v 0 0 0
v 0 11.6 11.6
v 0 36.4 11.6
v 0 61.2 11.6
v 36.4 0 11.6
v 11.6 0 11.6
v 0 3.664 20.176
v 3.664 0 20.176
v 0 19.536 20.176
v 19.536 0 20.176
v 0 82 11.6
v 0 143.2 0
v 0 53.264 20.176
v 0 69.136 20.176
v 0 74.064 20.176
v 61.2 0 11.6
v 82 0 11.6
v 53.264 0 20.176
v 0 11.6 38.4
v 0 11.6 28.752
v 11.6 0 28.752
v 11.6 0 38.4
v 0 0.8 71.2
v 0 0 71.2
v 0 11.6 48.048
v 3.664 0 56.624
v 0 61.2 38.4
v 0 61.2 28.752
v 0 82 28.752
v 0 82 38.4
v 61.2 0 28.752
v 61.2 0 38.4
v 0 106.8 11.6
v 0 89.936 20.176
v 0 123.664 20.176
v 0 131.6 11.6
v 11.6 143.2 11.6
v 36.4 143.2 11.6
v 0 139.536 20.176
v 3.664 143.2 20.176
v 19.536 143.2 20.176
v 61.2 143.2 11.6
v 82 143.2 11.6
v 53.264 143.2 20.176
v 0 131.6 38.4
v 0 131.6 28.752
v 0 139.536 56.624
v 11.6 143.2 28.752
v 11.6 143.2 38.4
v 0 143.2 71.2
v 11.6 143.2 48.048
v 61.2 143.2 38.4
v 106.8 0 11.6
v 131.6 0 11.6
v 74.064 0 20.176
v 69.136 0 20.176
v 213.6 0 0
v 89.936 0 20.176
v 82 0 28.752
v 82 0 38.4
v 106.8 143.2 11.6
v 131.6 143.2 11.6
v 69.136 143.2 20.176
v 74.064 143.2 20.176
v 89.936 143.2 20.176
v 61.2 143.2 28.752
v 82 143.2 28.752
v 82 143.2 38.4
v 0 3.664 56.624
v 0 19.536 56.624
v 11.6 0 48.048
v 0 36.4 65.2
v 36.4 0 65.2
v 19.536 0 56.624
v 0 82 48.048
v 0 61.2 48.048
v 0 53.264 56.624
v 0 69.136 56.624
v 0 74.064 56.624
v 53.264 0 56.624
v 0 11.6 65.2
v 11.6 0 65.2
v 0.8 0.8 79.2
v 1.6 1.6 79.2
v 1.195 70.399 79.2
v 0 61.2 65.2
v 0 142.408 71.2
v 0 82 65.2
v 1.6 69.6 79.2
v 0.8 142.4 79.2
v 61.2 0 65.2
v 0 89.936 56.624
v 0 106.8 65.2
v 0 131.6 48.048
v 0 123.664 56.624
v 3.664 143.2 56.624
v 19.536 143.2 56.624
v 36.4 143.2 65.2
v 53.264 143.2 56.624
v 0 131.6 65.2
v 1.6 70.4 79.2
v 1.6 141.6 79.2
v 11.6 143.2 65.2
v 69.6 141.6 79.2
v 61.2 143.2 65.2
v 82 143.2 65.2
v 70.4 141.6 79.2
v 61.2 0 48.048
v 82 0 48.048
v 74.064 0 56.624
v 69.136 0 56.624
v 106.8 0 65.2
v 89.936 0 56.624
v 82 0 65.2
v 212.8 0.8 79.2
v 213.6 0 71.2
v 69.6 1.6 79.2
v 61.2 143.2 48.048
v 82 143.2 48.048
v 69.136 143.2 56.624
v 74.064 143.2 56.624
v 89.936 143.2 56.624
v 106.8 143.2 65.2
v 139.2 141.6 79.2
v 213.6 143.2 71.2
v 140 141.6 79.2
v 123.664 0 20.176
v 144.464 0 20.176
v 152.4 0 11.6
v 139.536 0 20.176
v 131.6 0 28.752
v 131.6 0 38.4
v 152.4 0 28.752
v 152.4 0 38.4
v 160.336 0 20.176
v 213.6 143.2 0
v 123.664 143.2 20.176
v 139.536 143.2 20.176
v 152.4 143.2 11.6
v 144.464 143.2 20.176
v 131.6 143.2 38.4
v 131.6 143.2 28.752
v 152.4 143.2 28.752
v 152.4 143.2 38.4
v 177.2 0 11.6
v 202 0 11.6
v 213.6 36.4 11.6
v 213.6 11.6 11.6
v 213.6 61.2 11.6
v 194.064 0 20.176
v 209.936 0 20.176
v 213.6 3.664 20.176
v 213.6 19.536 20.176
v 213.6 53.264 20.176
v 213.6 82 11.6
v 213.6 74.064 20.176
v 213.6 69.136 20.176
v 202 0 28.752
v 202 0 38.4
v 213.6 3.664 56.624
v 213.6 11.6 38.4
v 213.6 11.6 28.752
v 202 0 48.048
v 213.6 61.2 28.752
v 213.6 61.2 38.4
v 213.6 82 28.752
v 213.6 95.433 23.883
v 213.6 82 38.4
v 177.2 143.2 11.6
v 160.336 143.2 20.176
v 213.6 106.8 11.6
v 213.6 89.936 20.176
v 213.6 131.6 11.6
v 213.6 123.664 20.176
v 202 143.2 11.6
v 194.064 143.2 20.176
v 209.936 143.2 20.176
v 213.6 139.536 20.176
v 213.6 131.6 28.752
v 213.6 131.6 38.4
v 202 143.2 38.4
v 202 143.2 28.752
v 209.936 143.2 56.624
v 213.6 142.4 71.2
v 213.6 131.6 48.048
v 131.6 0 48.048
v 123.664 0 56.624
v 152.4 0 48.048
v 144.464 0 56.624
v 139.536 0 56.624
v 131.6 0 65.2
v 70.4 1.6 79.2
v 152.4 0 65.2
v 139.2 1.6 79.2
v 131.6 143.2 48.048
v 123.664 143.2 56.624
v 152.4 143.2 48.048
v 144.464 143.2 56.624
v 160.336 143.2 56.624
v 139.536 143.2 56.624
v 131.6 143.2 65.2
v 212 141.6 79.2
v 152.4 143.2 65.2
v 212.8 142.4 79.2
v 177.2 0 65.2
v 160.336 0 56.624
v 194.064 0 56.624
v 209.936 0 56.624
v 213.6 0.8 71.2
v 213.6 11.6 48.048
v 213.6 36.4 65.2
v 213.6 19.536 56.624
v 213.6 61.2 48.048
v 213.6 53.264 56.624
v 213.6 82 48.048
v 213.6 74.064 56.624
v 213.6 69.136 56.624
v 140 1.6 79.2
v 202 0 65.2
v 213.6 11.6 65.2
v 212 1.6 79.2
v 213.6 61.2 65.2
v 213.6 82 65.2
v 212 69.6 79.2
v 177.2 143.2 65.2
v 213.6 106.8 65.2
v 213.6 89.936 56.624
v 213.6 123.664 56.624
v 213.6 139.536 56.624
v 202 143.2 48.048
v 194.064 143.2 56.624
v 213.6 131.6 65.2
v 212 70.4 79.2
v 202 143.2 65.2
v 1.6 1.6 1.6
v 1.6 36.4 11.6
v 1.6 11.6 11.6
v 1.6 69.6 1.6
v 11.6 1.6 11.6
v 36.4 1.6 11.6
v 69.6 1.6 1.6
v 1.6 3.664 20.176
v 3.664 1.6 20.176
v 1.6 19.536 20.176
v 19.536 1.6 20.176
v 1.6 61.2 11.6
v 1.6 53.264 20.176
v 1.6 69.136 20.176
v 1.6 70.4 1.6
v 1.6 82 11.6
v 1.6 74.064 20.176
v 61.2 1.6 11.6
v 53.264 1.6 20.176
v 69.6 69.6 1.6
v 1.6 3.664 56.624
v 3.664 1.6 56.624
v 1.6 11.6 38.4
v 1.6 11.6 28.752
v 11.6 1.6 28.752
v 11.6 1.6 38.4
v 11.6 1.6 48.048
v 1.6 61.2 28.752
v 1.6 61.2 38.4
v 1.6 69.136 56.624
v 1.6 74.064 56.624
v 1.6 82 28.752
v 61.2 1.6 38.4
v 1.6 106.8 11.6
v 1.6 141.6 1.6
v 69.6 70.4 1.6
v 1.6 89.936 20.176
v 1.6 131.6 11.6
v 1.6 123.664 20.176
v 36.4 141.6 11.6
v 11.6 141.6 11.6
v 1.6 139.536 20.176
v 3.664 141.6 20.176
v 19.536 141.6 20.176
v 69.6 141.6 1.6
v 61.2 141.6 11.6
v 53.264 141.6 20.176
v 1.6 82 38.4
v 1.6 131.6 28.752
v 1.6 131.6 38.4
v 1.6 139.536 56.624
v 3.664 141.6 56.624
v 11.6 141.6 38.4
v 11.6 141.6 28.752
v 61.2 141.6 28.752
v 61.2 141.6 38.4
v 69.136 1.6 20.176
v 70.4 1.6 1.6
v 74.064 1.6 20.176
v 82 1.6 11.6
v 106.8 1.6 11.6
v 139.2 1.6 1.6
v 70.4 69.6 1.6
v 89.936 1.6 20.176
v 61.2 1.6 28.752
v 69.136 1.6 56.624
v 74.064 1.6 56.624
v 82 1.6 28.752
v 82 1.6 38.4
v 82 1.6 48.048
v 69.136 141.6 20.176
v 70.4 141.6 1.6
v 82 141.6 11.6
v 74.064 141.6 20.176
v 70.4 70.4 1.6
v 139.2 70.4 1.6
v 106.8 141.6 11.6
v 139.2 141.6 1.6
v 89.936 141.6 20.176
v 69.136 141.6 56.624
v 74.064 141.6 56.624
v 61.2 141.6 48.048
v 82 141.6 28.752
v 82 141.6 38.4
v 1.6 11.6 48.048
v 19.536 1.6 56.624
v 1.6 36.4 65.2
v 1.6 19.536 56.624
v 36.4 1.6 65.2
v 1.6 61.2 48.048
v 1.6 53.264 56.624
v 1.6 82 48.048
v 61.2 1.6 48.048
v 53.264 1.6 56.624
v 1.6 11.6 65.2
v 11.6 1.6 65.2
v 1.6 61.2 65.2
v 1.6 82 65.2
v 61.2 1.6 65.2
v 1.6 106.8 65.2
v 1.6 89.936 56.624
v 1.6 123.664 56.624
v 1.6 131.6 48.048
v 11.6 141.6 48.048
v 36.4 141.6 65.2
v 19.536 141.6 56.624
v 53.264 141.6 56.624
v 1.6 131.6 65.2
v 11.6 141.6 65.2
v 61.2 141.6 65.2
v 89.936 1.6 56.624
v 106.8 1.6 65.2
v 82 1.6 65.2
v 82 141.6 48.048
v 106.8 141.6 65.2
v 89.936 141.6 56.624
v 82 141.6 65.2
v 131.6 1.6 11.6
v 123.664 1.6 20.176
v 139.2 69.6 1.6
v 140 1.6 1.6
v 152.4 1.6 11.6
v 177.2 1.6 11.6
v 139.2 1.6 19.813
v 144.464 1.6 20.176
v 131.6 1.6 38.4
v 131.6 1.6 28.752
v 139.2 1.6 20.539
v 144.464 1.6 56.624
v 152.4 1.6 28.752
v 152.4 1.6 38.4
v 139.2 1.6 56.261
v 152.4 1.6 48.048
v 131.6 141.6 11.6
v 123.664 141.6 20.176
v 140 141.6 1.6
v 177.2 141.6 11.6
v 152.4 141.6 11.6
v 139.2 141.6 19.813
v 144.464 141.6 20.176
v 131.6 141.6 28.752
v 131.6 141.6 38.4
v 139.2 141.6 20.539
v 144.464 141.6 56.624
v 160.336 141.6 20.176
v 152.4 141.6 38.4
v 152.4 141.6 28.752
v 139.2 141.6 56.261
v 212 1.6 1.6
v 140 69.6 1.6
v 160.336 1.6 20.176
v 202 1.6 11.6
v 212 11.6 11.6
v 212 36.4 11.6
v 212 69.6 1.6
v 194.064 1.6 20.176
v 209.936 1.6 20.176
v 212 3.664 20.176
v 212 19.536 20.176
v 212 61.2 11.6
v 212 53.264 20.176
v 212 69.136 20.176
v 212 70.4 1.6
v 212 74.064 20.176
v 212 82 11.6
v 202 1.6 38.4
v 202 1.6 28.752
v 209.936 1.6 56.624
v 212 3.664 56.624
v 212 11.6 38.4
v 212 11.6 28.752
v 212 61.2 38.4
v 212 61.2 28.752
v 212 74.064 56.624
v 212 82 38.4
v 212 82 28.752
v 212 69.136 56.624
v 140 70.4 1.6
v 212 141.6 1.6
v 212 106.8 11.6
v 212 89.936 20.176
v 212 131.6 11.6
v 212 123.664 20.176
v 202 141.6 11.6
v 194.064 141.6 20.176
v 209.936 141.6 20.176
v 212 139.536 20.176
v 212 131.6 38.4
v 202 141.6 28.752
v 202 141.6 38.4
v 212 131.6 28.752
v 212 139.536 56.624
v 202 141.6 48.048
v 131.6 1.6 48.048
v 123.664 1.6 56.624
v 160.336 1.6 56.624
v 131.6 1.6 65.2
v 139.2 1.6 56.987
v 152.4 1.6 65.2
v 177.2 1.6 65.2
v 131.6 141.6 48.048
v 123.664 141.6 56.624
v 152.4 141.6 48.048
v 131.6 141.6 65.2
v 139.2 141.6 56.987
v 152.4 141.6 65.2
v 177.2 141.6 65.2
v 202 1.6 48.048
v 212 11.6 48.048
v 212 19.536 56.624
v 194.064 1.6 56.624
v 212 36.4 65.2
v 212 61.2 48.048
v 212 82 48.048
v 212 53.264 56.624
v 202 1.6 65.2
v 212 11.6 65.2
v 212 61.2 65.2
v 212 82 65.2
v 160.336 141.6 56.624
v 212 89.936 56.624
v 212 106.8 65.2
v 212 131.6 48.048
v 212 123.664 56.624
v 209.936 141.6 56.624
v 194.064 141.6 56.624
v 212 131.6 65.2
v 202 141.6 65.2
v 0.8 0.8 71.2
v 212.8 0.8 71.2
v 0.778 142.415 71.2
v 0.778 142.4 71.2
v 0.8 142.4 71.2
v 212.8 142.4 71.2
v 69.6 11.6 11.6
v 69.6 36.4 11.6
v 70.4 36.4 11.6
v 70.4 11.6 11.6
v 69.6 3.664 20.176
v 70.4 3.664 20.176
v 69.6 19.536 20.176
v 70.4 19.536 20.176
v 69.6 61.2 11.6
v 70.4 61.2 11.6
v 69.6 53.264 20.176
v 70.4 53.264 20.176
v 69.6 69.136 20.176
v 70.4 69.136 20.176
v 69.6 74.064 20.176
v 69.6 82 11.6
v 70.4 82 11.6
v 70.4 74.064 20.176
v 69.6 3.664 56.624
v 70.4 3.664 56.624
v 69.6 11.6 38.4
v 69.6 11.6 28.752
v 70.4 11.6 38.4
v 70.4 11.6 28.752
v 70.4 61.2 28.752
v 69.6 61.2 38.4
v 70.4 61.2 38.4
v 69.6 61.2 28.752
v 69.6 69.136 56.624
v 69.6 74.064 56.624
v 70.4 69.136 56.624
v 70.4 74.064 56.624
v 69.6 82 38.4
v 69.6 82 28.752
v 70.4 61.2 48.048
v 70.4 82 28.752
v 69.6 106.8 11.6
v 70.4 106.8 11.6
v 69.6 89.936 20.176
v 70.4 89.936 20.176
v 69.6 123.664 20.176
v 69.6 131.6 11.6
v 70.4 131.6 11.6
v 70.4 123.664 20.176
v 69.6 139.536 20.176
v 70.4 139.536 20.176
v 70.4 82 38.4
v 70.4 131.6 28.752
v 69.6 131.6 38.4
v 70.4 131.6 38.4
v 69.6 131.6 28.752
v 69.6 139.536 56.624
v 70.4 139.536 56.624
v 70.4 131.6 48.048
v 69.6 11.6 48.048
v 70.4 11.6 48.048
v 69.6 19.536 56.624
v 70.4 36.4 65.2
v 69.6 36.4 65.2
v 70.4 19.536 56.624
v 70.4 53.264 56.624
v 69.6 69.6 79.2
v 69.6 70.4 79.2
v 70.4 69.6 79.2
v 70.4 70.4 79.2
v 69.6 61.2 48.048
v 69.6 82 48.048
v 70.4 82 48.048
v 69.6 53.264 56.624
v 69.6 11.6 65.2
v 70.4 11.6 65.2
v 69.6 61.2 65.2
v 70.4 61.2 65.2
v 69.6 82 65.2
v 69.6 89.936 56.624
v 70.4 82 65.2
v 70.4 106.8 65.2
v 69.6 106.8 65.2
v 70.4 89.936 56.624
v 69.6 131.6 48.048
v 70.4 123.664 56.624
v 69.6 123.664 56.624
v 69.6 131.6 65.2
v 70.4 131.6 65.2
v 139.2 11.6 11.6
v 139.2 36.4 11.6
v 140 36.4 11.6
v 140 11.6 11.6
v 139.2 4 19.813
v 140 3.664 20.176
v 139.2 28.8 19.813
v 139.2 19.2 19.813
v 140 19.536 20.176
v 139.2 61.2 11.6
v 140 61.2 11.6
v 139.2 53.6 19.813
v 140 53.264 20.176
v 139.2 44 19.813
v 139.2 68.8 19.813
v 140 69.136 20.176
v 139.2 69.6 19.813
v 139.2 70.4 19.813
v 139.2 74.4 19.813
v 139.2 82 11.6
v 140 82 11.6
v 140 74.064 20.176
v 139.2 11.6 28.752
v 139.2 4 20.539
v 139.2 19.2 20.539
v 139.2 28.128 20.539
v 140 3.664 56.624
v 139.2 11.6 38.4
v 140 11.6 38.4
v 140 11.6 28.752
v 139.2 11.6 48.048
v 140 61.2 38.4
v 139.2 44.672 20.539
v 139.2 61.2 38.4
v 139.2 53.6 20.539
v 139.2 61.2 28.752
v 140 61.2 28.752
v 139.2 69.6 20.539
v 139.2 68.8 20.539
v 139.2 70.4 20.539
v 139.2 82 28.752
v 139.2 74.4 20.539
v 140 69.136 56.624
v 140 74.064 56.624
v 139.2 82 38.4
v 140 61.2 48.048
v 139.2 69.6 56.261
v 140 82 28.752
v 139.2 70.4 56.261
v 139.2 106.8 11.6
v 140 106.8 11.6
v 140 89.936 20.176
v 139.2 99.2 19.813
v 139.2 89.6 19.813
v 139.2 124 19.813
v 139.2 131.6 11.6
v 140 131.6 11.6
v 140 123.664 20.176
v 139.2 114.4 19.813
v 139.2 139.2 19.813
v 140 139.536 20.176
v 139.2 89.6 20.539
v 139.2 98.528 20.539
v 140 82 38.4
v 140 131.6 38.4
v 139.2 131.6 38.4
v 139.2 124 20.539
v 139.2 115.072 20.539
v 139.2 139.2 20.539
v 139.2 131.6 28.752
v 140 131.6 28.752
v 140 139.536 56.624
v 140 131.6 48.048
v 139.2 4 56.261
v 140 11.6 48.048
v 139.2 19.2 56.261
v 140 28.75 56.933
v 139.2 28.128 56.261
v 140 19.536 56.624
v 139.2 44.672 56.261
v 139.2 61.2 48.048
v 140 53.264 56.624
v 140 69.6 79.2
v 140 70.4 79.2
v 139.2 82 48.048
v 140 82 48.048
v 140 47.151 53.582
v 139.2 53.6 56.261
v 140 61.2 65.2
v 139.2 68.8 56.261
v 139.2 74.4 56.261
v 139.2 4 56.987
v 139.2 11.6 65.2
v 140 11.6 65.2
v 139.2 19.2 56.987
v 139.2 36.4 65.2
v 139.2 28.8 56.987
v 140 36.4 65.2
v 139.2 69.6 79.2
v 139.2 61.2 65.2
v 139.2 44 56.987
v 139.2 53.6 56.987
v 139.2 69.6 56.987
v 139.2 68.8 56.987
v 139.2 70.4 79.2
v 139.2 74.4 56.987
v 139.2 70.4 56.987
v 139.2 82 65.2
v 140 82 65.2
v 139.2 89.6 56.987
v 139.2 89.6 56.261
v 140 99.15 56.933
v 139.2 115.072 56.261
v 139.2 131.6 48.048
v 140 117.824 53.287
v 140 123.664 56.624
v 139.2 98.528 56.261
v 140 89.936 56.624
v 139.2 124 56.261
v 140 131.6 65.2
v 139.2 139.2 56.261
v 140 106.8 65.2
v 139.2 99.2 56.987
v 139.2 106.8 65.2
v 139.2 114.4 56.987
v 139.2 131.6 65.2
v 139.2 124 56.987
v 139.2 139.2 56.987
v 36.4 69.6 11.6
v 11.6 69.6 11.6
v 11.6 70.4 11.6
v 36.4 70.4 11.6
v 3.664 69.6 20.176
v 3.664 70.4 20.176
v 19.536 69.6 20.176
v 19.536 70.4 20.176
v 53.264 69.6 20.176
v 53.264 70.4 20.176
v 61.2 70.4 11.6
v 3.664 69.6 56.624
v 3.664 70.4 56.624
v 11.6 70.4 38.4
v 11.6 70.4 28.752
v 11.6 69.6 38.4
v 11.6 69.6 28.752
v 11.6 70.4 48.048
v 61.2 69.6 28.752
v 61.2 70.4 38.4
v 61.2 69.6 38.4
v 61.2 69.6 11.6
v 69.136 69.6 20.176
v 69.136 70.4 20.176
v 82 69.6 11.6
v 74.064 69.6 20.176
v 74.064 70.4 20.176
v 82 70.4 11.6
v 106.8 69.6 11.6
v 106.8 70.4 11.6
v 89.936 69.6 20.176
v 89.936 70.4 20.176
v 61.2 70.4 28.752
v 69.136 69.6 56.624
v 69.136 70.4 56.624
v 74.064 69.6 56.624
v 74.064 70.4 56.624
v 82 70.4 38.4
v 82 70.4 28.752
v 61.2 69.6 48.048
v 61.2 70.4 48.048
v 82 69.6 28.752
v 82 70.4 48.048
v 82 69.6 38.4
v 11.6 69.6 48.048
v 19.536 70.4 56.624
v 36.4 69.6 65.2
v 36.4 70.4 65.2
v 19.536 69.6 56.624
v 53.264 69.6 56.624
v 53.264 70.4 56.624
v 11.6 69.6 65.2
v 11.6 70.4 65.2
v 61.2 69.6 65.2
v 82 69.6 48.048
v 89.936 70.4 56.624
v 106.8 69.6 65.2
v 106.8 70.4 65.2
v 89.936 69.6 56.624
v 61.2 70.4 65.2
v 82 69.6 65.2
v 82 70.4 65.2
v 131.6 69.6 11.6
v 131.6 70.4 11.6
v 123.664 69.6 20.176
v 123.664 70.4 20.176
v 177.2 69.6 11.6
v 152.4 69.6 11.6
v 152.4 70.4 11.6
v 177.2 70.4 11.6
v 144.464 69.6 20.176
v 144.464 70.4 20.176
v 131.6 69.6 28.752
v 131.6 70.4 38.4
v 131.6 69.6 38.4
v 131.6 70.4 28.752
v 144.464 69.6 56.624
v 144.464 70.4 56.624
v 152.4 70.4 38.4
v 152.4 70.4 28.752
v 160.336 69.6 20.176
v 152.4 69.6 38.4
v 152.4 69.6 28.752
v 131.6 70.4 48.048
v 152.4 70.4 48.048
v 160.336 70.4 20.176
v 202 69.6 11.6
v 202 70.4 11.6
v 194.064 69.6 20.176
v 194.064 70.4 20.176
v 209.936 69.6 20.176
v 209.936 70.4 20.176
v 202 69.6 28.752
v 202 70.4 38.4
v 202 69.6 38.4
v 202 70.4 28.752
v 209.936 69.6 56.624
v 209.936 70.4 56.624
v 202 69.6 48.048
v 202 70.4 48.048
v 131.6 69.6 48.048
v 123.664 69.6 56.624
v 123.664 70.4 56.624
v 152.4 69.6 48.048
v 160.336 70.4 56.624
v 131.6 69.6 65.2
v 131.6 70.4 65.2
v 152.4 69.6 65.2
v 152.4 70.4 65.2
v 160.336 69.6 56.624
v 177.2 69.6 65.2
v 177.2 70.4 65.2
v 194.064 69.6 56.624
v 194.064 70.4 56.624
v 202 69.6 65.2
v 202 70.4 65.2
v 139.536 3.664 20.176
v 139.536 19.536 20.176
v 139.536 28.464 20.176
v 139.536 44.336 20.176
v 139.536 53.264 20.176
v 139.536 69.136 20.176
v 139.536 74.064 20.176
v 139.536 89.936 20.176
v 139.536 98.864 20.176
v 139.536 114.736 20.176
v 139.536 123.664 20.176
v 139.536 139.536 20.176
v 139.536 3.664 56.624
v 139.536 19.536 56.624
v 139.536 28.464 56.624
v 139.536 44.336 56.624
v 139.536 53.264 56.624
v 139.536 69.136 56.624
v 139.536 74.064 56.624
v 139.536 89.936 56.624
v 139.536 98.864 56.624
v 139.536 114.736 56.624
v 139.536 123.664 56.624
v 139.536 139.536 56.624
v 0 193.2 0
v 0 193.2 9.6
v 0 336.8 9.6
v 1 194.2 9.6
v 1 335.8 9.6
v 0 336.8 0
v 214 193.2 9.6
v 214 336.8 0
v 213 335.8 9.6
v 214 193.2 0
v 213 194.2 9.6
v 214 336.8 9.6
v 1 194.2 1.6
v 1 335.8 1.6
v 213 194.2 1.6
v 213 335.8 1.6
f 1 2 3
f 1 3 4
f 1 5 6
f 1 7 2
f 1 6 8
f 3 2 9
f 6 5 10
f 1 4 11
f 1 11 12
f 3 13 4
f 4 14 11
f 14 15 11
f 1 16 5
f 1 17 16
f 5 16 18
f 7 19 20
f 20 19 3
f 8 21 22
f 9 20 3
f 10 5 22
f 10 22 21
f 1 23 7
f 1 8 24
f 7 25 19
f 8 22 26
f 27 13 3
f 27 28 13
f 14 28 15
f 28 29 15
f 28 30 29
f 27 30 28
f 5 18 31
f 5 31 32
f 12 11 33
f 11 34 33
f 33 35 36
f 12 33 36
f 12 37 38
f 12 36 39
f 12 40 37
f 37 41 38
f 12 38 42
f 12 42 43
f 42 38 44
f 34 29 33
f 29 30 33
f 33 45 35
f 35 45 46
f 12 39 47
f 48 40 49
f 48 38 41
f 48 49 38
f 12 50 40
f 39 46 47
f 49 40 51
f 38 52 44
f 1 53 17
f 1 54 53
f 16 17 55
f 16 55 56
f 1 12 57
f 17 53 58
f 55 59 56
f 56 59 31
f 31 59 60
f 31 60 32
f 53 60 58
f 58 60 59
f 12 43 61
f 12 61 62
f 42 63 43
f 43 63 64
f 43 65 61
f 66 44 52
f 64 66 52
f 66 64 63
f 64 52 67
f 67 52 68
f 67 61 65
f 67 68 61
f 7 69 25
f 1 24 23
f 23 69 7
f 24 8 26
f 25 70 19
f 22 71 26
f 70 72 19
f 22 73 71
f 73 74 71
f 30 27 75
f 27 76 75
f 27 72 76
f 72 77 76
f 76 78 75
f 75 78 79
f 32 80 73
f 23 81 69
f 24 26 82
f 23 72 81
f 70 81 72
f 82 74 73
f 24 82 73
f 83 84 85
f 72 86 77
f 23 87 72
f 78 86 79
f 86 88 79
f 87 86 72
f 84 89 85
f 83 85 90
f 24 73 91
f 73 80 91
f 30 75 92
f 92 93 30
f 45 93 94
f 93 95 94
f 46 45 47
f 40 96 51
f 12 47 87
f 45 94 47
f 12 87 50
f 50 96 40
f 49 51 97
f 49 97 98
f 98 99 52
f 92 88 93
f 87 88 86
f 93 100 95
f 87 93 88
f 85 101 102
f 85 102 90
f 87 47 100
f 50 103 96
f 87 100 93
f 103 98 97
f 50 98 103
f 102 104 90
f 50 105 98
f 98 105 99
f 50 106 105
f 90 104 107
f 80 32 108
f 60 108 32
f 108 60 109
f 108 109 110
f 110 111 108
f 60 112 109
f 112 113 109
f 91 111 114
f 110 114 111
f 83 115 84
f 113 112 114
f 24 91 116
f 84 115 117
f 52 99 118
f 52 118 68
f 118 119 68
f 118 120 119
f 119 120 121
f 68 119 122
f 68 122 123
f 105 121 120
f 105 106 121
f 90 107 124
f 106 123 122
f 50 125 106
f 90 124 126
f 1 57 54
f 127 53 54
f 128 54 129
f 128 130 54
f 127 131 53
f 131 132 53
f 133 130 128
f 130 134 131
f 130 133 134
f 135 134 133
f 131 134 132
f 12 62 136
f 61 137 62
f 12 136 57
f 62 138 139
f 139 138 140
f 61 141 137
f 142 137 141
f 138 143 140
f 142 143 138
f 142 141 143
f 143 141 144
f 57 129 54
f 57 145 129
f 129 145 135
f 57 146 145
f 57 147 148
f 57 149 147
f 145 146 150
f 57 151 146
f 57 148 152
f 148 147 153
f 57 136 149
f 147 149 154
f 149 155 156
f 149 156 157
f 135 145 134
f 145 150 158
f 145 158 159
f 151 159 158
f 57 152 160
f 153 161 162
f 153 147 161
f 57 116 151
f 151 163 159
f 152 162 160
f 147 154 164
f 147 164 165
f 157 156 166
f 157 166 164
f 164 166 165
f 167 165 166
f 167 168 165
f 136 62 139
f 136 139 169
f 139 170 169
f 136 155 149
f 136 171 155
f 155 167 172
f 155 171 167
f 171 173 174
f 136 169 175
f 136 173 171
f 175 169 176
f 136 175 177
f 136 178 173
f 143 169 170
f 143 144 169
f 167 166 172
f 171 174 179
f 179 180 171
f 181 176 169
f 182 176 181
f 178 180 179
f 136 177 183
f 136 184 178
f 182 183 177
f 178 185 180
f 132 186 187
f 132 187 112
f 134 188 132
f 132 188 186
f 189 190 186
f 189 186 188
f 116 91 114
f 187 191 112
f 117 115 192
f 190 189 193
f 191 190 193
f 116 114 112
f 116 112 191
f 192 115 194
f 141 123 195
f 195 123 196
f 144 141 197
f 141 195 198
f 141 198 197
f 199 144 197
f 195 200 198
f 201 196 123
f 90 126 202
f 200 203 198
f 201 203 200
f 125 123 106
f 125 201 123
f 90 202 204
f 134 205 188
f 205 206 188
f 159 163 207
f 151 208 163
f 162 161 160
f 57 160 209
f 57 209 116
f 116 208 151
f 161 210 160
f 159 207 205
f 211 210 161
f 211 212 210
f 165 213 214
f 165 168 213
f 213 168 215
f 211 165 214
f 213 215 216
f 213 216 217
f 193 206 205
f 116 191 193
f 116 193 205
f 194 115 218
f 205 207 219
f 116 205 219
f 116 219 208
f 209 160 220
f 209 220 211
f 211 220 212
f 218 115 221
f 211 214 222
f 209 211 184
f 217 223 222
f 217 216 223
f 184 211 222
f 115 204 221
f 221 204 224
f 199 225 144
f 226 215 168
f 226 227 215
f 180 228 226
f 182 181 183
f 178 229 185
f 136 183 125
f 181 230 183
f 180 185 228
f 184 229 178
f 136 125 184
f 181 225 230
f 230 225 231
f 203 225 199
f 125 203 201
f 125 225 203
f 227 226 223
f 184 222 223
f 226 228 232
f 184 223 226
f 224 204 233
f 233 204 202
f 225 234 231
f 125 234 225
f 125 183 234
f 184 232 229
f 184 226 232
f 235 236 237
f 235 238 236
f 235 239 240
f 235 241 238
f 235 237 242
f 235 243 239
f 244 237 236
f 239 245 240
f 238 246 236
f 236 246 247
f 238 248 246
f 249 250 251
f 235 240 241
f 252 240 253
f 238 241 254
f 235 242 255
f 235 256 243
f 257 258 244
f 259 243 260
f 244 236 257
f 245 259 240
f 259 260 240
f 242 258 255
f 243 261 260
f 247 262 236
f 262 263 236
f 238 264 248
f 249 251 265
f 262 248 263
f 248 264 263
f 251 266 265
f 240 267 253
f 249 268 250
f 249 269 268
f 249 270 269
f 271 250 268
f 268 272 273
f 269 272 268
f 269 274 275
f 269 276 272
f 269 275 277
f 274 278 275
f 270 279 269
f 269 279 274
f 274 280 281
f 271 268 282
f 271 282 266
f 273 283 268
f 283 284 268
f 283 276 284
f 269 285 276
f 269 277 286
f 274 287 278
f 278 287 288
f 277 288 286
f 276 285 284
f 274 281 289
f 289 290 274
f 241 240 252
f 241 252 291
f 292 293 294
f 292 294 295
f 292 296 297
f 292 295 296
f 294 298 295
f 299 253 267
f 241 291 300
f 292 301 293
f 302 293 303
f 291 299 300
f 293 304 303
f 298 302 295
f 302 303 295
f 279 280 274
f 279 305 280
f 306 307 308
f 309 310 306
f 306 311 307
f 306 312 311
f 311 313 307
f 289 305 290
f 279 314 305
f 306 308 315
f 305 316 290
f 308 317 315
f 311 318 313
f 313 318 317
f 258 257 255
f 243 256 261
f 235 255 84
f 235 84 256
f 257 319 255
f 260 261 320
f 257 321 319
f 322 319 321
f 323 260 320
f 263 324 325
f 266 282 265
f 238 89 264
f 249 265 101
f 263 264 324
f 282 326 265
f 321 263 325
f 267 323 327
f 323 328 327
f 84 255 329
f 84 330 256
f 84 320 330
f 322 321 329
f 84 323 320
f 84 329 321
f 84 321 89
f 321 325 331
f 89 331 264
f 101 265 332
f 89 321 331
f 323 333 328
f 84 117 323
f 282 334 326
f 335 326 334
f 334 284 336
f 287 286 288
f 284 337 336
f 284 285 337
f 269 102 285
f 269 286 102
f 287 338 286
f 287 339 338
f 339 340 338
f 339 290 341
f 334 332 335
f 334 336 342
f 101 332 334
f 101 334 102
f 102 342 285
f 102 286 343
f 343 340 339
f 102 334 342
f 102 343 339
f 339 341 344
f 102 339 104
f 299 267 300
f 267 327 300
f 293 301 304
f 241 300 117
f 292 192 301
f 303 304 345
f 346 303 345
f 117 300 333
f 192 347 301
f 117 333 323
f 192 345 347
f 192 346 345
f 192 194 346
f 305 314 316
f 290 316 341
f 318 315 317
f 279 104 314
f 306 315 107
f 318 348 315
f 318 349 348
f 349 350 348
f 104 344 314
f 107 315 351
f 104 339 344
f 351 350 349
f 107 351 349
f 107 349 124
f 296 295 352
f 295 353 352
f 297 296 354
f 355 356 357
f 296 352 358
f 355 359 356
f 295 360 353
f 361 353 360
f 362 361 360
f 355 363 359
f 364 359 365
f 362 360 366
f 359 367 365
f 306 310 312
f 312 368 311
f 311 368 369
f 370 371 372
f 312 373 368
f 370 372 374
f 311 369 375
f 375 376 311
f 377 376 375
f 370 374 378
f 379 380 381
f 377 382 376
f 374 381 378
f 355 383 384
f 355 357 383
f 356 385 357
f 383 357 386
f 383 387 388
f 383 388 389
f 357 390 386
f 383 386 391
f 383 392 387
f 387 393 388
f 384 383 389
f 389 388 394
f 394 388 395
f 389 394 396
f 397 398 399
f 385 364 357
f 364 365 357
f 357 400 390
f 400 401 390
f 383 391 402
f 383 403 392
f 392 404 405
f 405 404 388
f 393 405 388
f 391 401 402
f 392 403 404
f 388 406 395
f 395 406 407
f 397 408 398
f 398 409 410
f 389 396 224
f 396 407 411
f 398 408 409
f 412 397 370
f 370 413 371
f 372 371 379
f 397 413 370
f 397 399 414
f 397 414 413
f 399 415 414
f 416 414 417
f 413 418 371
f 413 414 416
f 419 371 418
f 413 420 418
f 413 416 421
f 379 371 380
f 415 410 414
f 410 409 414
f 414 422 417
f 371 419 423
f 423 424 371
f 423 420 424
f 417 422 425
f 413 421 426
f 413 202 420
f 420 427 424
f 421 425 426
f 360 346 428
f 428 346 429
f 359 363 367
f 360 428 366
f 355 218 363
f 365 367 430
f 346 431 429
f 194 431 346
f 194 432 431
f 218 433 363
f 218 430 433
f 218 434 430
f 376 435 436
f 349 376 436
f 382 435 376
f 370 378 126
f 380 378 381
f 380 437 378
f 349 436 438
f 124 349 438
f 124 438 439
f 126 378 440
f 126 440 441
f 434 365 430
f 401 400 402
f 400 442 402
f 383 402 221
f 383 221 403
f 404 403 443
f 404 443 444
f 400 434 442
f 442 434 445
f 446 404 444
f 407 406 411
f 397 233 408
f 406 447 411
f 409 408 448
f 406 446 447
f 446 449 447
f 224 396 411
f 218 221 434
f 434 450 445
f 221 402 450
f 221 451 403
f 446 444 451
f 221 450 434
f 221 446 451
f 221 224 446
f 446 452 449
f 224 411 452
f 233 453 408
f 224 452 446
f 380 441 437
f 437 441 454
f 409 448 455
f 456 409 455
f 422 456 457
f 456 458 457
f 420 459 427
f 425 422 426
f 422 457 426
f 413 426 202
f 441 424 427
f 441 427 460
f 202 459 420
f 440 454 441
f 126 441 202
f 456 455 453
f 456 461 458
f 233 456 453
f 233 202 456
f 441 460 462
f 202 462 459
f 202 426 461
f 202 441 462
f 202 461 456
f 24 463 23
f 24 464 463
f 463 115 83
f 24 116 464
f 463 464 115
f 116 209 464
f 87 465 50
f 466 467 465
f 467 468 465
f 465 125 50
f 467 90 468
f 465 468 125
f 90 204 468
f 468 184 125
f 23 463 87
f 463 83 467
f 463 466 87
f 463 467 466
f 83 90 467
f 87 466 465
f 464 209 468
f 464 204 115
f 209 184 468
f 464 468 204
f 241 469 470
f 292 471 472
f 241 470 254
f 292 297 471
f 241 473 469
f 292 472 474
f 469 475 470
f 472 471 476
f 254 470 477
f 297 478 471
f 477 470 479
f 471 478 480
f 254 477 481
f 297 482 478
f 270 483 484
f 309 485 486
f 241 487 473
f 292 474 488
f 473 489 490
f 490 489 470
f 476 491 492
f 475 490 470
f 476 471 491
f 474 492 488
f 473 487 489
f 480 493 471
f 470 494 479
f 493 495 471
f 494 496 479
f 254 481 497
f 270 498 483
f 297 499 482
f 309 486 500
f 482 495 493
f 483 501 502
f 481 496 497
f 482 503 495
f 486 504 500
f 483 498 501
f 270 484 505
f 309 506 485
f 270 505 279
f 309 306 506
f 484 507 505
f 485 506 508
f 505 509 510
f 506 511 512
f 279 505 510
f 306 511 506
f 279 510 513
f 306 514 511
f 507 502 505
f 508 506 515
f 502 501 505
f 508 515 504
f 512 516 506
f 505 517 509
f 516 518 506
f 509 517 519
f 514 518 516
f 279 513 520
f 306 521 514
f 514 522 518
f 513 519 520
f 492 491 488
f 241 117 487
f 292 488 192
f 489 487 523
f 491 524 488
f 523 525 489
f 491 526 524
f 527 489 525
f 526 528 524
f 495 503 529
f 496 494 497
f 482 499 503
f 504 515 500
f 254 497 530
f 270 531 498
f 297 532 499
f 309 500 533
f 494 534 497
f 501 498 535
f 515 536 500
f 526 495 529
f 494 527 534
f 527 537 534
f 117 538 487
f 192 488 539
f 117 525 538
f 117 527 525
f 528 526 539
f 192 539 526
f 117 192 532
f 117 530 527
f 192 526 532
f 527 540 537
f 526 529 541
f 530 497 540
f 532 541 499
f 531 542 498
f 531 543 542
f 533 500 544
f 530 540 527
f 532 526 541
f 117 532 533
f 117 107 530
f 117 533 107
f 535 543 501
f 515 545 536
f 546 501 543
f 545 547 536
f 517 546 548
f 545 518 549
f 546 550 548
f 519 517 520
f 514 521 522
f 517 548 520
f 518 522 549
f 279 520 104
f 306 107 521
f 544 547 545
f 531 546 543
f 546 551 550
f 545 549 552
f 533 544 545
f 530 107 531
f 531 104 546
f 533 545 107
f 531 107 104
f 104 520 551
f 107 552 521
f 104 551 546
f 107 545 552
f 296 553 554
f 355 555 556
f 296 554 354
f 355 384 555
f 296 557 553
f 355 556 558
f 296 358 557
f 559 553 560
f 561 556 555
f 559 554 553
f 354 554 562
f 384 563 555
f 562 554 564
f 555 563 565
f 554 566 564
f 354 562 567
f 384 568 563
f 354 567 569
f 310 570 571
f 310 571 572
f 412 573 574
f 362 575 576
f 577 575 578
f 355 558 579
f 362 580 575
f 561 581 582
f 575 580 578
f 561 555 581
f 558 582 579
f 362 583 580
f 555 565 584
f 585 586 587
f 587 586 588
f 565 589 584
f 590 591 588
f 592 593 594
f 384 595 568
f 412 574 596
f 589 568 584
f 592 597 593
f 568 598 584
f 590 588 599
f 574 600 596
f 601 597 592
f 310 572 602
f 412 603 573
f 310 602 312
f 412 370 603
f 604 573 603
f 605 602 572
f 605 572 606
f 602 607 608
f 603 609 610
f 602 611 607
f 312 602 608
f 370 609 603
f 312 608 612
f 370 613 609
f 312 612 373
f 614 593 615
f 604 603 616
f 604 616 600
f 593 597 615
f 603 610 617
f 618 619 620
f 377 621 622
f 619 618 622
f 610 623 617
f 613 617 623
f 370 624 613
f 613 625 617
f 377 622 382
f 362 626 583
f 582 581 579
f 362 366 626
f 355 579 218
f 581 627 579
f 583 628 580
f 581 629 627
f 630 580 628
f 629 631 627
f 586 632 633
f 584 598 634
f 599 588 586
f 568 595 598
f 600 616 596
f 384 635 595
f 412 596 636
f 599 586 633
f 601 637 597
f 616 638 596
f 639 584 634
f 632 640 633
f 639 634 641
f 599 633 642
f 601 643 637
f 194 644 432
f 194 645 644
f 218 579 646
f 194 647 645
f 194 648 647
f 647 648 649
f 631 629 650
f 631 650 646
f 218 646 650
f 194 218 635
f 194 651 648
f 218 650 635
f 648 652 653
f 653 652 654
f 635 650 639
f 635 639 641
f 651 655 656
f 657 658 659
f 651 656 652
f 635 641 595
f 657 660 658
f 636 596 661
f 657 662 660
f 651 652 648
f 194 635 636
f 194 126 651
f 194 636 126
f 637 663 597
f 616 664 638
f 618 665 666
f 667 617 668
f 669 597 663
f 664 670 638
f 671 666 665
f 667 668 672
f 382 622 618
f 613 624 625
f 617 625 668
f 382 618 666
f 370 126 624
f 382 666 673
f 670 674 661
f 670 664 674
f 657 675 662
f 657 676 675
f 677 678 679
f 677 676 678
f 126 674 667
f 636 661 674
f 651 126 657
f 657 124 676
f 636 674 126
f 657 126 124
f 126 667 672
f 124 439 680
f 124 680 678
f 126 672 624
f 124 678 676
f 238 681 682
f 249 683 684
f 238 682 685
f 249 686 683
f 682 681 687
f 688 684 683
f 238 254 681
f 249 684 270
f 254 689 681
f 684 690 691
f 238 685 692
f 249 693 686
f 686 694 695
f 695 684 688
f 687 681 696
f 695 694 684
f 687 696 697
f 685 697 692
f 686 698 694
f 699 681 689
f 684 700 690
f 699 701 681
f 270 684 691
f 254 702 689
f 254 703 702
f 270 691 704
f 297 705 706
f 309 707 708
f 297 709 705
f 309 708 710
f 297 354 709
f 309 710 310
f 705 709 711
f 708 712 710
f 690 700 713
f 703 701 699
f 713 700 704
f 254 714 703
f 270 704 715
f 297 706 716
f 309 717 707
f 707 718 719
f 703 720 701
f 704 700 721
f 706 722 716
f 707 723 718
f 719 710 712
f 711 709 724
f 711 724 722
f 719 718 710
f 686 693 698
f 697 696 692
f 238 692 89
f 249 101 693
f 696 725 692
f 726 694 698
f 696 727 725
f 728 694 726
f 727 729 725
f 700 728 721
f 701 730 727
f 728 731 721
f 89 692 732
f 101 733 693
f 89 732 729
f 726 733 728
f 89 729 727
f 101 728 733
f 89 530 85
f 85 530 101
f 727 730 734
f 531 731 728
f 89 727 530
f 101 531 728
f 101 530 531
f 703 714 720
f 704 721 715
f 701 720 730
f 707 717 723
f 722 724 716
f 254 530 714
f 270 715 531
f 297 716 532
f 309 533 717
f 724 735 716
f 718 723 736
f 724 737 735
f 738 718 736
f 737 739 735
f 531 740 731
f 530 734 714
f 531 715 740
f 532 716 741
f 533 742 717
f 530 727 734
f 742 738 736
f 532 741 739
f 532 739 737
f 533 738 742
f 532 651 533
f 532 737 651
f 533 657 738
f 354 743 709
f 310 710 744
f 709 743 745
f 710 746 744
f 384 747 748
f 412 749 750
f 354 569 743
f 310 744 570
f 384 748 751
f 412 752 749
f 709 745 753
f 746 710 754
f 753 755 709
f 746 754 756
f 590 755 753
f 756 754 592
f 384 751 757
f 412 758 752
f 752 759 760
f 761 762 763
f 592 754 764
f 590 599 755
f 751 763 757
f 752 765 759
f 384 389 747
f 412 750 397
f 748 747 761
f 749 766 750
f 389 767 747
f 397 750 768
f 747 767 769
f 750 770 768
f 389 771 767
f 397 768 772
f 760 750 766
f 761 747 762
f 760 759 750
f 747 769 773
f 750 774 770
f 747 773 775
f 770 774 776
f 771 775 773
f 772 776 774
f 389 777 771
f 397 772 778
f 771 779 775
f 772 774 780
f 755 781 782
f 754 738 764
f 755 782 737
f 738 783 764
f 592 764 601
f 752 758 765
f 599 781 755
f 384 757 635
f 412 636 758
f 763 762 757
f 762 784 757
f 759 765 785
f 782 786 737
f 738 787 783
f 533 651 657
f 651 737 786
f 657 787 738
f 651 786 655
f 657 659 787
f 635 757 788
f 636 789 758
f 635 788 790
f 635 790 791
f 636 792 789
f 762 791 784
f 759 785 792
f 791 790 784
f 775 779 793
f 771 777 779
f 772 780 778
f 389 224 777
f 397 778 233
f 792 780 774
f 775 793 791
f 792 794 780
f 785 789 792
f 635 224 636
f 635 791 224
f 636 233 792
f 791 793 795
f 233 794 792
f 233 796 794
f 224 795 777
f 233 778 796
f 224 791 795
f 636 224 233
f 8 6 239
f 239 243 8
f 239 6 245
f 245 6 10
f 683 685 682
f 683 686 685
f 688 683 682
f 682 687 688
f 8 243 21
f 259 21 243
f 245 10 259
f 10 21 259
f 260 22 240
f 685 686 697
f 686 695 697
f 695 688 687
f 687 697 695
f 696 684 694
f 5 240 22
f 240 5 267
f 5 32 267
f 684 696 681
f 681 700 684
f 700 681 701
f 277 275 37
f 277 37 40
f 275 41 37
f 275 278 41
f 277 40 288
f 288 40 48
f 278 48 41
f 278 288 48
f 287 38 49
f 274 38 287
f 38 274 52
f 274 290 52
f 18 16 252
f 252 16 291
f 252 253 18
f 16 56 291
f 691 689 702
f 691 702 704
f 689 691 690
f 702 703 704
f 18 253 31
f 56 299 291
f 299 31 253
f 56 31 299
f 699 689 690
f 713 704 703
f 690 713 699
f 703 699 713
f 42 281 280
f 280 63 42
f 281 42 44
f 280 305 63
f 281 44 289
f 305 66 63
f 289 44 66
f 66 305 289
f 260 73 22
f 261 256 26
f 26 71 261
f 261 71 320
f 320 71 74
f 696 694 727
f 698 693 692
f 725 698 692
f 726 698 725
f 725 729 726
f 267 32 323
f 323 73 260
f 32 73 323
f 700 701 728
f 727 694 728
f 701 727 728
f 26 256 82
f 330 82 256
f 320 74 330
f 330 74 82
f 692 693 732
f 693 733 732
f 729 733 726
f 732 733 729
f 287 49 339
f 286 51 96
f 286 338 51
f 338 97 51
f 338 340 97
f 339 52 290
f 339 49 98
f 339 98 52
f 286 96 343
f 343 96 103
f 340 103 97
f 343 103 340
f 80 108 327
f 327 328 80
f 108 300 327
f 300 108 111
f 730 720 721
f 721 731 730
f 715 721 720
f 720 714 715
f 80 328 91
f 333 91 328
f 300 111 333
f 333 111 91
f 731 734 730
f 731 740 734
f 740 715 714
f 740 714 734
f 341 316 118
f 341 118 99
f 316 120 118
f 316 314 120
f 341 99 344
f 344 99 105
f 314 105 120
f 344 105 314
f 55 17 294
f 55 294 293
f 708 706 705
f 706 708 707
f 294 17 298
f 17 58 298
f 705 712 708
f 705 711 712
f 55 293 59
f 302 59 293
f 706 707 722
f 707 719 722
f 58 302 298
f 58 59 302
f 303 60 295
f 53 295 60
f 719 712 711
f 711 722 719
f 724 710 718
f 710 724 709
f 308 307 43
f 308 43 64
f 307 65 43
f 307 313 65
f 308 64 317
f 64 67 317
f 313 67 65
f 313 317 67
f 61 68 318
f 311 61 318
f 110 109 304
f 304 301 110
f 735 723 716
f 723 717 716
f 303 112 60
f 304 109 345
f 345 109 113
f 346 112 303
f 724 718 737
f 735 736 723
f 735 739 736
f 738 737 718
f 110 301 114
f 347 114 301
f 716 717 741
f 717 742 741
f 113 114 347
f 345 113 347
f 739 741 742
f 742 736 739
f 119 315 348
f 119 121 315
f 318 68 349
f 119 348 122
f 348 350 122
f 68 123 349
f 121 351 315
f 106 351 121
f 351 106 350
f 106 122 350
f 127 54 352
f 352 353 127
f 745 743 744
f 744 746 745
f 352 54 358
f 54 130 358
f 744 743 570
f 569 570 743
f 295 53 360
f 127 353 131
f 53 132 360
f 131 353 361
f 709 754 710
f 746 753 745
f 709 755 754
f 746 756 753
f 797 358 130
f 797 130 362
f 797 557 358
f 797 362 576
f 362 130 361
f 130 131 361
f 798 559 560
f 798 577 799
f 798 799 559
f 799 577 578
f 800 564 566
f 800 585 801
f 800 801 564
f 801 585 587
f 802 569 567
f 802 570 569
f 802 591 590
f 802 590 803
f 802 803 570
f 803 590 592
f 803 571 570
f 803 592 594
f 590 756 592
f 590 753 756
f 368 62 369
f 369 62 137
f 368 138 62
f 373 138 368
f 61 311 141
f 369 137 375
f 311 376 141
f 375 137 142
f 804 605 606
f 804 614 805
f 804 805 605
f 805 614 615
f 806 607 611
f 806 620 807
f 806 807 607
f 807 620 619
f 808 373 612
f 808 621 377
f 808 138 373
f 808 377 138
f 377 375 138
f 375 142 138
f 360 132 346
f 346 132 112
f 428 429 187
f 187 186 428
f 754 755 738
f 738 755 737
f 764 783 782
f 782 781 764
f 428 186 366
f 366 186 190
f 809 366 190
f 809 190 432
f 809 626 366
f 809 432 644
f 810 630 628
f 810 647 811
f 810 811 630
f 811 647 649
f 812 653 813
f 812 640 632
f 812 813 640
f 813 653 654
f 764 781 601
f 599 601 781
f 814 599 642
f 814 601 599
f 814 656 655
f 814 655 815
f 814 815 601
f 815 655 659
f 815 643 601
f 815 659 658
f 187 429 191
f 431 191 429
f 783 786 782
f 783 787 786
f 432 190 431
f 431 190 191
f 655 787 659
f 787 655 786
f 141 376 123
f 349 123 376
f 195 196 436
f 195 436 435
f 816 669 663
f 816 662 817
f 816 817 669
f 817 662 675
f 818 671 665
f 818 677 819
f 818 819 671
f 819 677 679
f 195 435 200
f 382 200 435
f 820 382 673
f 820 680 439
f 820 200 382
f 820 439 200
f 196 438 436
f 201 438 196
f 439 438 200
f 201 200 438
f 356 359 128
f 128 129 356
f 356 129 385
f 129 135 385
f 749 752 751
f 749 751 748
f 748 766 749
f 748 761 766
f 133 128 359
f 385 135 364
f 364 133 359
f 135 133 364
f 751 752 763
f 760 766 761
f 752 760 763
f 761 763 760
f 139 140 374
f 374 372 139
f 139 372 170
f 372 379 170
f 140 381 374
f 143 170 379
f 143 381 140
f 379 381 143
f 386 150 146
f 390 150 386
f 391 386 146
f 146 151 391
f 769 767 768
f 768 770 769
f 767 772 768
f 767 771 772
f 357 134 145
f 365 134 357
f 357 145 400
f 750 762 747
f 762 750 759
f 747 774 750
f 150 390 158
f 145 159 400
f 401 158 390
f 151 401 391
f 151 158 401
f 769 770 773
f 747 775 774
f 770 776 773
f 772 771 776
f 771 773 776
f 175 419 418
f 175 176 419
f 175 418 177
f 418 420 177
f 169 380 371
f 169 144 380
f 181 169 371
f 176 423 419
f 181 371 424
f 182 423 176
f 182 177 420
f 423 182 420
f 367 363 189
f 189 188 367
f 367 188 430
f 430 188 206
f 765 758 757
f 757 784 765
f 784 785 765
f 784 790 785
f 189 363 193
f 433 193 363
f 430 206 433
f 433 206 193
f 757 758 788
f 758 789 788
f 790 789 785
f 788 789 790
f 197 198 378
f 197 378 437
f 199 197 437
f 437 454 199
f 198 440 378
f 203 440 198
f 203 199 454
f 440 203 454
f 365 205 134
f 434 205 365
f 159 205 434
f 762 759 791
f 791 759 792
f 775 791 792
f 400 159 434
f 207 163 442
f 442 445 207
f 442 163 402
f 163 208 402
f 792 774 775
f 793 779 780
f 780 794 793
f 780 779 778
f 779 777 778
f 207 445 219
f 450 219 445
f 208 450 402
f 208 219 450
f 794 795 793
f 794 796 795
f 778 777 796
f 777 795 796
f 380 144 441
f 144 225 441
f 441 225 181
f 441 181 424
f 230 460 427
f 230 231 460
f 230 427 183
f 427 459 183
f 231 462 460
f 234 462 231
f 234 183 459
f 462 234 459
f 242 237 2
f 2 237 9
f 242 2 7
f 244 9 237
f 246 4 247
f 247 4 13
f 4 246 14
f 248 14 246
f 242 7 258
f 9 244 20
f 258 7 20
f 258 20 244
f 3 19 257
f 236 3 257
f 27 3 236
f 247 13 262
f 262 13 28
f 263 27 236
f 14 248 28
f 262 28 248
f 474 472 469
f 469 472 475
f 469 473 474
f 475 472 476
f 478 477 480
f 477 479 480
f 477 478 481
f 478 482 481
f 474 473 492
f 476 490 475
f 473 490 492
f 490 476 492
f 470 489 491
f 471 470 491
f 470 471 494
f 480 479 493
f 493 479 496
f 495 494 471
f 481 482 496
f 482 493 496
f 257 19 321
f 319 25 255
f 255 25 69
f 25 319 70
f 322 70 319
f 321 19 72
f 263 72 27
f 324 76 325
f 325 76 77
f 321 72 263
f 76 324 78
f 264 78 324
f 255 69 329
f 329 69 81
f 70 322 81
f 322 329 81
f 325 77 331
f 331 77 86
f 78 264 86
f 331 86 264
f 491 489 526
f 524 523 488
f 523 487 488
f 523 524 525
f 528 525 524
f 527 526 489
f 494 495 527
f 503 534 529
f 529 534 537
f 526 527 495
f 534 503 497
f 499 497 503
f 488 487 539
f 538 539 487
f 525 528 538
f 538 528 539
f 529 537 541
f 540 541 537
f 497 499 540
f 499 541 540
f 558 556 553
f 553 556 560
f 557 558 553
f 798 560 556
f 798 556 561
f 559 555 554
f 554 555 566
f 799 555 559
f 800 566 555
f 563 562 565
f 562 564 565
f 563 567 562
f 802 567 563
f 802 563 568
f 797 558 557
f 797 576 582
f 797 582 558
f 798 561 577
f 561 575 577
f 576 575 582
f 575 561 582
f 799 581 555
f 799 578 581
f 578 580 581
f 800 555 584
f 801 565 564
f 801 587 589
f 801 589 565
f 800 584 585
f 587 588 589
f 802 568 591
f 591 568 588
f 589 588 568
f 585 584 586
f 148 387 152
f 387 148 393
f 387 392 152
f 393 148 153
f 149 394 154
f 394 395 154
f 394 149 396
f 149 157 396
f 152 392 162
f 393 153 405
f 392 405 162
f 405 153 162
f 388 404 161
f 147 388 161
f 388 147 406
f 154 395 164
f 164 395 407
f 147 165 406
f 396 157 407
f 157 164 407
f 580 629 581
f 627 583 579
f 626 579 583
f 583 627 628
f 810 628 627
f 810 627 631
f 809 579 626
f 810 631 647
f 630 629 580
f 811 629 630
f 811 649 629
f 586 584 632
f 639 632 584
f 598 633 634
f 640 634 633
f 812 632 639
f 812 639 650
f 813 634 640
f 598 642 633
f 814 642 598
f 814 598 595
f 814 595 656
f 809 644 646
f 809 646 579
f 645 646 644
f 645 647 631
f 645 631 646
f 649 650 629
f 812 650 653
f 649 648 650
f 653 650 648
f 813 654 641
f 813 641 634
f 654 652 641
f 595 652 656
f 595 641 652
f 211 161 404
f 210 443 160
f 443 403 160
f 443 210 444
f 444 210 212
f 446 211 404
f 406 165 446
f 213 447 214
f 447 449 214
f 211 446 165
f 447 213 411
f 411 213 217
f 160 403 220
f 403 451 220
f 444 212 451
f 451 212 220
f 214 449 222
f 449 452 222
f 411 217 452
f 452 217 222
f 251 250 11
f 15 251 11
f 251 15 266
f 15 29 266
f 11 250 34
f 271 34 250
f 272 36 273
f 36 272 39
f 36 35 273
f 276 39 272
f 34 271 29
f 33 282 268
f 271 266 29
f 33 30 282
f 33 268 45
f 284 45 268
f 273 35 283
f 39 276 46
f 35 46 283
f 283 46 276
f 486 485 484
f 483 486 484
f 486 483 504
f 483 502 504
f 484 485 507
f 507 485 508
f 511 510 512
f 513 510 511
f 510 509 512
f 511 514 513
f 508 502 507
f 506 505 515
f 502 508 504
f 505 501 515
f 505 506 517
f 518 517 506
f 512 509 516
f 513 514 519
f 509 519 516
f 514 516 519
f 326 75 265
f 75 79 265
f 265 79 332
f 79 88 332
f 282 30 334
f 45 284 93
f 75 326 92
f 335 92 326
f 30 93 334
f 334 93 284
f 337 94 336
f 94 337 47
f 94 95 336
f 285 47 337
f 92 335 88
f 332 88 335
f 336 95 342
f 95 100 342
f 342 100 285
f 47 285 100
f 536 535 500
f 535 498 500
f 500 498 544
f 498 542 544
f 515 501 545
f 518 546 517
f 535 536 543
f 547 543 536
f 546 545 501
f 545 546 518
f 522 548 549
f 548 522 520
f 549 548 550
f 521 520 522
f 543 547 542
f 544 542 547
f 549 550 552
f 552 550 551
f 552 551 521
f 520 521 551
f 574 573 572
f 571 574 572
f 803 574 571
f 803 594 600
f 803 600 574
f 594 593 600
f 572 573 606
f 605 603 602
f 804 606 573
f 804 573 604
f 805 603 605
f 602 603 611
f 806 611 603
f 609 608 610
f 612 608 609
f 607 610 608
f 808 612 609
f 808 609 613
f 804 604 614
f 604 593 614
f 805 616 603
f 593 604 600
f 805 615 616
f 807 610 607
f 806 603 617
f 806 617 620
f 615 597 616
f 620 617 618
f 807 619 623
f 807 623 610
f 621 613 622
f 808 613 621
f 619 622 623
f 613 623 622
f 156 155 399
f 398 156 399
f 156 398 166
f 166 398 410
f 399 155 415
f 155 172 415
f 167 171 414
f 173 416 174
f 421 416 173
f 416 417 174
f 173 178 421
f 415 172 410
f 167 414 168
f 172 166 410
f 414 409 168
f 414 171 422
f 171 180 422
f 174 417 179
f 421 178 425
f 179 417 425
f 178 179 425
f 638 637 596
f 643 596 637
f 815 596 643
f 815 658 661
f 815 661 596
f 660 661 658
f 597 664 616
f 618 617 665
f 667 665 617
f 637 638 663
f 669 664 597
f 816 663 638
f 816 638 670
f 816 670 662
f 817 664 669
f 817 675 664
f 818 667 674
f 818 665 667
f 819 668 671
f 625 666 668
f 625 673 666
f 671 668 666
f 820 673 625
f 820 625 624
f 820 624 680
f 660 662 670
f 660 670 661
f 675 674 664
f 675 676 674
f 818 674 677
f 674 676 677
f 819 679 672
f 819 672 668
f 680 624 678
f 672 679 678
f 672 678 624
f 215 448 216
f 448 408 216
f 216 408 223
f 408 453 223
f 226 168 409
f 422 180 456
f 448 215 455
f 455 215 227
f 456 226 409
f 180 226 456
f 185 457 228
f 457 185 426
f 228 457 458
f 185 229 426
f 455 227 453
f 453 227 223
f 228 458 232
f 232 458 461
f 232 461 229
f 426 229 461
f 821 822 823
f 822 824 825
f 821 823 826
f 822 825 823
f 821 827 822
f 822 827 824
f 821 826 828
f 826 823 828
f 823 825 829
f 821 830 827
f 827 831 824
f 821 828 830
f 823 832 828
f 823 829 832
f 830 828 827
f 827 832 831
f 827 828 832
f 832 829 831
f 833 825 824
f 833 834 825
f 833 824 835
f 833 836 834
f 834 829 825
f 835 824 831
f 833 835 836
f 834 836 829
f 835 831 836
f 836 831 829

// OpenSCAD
// The width of the external wall. Calculated for 0.4mm nozzle, modify for other nozzle or beefing up
ext_wall_width = 1.6;
// The width of the cover wall, which will be cut out of the external wall. Calculated for 0.4mm nozzle, modify for other nozzle or beefing up. Default is half the external wall size.
cover_wall_width = 0.8;
// The width of the internal wall. Calculated for 0.4mm nozzle, modify for other nozzle or beefing up
int_wall_width = 0.8;
// The dimension of the cell in the X direction. Change if you want to shorten or lengthen the box, and mind the resulting box size!
cell_x = 69.6;
// The dimension of the cell in the Y direction. Change if you want to shorten or lengthen the box, and mind the resulting box size!
cell_y = 69.6;
// Number of cells in the X direction.
x_cells = 3;
// Number of cells in the Y direction.
y_cells = 2;
// Margin for each cover wall. Suggested between 0.2 for very exact printers and snug fit to 0.4-0.6 for easy cover pop and/or more extruding or less accurate printers.
wall_margin = 0.2;

// -----------------------------------------------------------------
// Box with cutouts
// -----------------------------------------------------------------

// Design calculated values
cell_z = 71.2 - 1.6;
x_size = 2*ext_wall_width + (x_cells - 1)*int_wall_width + x_cells*cell_x;
y_size = 2*ext_wall_width + (y_cells - 1)*int_wall_width + y_cells*cell_y;

max_size = max(x_size, y_size);

rhomb_x = cell_x/2 - 10;
rhomb_y = cell_z/2 - 8;

function bigRhombus() = [
    [0, -rhomb_y], // bottom point
    [-rhomb_x, 0], // left point
    [0, rhomb_y], // top point
    [rhomb_x, 0]
];

module box() {
    difference(){
        cube([x_size, y_size, 79.2]);
        translate([ext_wall_width, ext_wall_width, 1.6])
            cube([x_size - 2*ext_wall_width, y_size - 2*ext_wall_width, 78]); // internal space
        translate([-1, -1, 71.2]) cube([x_size+2, 1+cover_wall_width, 9]); // inset for cover
        translate([-1, y_size-cover_wall_width, 71.2]) cube([x_size+2, 1+cover_wall_width, 9]); // inset for cover
        translate([-1, -1, 71.2]) cube([1+cover_wall_width, y_size+2, 9]); // inset for cover
        translate([x_size-cover_wall_width, -1, 71.2]) cube([1+cover_wall_width, y_size+2, 9]); // inset for cover
    }
    // Internal walls
    if (x_cells > 1) {
        for (i = [ 1 : x_cells-1 ]) {
            translate([i*cell_x, 1, 0]) cube([int_wall_width, y_size-2, 79.2]);
        }
    }
    if (y_cells > 1) {
        for (i = [ 1 : y_cells-1 ]) {
            translate([1, i*cell_x, 0]) cube([x_size-2, int_wall_width, 79.2]);
        }
    }
}

module cutoutX() {
    translate([x_size, 0, 0]) rotate([0,0,90]) cutoutY();
}

module cutoutY() {
    p_midhorz = cell_x / 2;
    p_midvert = cell_z / 2 + 2;
    translate([p_midhorz, max_size+10, p_midvert]) rotate([90,0,0]) linear_extrude(max_size+20) {
    polygon(bigRhombus());
    translate([rhomb_x, rhomb_y*0.68, 0]) scale([0.32, 0.32, 0.32]) polygon(bigRhombus());
    translate([-rhomb_x, rhomb_y*0.68, 0]) scale([0.32, 0.32, 0.32]) polygon(bigRhombus());
    translate([rhomb_x, -rhomb_y*0.68, 0]) scale([0.32, 0.32, 0.32]) polygon(bigRhombus());
    translate([-rhomb_x, -rhomb_y*0.68, 0]) scale([0.32, 0.32, 0.32]) polygon(bigRhombus());
    }
}

// Cutouts in the sides
difference() {
    box();
    for (i = [ 0 : x_cells-1 ]) {
        translate([ext_wall_width + i*(cell_x + int_wall_width), 0, 1.6]) cutoutY();
    }
    for (i = [ 0 : y_cells-1 ]) {
        translate([0, ext_wall_width + i*(cell_y + int_wall_width), 1.6]) cutoutX();
    }
}


// -----------------------------------------------------------------
// Box cover
// -----------------------------------------------------------------

x_csize = 2*ext_wall_width + (x_cells - 1)*int_wall_width + x_cells*cell_x + 2*wall_margin;
y_csize = 2*ext_wall_width + (y_cells - 1)*int_wall_width + y_cells*cell_y + 2*wall_margin;
cover_offset = cover_wall_width + wall_margin;

module cbox() {
    difference(){
        cube([x_csize, y_csize, 9.6]);
        translate([cover_offset, cover_offset, 1.6])
            cube([x_csize - 2*cover_offset, y_csize - 2*cover_offset, 10]); // internal space
    }
}

translate([0, y_size+50, 0]) cbox();
